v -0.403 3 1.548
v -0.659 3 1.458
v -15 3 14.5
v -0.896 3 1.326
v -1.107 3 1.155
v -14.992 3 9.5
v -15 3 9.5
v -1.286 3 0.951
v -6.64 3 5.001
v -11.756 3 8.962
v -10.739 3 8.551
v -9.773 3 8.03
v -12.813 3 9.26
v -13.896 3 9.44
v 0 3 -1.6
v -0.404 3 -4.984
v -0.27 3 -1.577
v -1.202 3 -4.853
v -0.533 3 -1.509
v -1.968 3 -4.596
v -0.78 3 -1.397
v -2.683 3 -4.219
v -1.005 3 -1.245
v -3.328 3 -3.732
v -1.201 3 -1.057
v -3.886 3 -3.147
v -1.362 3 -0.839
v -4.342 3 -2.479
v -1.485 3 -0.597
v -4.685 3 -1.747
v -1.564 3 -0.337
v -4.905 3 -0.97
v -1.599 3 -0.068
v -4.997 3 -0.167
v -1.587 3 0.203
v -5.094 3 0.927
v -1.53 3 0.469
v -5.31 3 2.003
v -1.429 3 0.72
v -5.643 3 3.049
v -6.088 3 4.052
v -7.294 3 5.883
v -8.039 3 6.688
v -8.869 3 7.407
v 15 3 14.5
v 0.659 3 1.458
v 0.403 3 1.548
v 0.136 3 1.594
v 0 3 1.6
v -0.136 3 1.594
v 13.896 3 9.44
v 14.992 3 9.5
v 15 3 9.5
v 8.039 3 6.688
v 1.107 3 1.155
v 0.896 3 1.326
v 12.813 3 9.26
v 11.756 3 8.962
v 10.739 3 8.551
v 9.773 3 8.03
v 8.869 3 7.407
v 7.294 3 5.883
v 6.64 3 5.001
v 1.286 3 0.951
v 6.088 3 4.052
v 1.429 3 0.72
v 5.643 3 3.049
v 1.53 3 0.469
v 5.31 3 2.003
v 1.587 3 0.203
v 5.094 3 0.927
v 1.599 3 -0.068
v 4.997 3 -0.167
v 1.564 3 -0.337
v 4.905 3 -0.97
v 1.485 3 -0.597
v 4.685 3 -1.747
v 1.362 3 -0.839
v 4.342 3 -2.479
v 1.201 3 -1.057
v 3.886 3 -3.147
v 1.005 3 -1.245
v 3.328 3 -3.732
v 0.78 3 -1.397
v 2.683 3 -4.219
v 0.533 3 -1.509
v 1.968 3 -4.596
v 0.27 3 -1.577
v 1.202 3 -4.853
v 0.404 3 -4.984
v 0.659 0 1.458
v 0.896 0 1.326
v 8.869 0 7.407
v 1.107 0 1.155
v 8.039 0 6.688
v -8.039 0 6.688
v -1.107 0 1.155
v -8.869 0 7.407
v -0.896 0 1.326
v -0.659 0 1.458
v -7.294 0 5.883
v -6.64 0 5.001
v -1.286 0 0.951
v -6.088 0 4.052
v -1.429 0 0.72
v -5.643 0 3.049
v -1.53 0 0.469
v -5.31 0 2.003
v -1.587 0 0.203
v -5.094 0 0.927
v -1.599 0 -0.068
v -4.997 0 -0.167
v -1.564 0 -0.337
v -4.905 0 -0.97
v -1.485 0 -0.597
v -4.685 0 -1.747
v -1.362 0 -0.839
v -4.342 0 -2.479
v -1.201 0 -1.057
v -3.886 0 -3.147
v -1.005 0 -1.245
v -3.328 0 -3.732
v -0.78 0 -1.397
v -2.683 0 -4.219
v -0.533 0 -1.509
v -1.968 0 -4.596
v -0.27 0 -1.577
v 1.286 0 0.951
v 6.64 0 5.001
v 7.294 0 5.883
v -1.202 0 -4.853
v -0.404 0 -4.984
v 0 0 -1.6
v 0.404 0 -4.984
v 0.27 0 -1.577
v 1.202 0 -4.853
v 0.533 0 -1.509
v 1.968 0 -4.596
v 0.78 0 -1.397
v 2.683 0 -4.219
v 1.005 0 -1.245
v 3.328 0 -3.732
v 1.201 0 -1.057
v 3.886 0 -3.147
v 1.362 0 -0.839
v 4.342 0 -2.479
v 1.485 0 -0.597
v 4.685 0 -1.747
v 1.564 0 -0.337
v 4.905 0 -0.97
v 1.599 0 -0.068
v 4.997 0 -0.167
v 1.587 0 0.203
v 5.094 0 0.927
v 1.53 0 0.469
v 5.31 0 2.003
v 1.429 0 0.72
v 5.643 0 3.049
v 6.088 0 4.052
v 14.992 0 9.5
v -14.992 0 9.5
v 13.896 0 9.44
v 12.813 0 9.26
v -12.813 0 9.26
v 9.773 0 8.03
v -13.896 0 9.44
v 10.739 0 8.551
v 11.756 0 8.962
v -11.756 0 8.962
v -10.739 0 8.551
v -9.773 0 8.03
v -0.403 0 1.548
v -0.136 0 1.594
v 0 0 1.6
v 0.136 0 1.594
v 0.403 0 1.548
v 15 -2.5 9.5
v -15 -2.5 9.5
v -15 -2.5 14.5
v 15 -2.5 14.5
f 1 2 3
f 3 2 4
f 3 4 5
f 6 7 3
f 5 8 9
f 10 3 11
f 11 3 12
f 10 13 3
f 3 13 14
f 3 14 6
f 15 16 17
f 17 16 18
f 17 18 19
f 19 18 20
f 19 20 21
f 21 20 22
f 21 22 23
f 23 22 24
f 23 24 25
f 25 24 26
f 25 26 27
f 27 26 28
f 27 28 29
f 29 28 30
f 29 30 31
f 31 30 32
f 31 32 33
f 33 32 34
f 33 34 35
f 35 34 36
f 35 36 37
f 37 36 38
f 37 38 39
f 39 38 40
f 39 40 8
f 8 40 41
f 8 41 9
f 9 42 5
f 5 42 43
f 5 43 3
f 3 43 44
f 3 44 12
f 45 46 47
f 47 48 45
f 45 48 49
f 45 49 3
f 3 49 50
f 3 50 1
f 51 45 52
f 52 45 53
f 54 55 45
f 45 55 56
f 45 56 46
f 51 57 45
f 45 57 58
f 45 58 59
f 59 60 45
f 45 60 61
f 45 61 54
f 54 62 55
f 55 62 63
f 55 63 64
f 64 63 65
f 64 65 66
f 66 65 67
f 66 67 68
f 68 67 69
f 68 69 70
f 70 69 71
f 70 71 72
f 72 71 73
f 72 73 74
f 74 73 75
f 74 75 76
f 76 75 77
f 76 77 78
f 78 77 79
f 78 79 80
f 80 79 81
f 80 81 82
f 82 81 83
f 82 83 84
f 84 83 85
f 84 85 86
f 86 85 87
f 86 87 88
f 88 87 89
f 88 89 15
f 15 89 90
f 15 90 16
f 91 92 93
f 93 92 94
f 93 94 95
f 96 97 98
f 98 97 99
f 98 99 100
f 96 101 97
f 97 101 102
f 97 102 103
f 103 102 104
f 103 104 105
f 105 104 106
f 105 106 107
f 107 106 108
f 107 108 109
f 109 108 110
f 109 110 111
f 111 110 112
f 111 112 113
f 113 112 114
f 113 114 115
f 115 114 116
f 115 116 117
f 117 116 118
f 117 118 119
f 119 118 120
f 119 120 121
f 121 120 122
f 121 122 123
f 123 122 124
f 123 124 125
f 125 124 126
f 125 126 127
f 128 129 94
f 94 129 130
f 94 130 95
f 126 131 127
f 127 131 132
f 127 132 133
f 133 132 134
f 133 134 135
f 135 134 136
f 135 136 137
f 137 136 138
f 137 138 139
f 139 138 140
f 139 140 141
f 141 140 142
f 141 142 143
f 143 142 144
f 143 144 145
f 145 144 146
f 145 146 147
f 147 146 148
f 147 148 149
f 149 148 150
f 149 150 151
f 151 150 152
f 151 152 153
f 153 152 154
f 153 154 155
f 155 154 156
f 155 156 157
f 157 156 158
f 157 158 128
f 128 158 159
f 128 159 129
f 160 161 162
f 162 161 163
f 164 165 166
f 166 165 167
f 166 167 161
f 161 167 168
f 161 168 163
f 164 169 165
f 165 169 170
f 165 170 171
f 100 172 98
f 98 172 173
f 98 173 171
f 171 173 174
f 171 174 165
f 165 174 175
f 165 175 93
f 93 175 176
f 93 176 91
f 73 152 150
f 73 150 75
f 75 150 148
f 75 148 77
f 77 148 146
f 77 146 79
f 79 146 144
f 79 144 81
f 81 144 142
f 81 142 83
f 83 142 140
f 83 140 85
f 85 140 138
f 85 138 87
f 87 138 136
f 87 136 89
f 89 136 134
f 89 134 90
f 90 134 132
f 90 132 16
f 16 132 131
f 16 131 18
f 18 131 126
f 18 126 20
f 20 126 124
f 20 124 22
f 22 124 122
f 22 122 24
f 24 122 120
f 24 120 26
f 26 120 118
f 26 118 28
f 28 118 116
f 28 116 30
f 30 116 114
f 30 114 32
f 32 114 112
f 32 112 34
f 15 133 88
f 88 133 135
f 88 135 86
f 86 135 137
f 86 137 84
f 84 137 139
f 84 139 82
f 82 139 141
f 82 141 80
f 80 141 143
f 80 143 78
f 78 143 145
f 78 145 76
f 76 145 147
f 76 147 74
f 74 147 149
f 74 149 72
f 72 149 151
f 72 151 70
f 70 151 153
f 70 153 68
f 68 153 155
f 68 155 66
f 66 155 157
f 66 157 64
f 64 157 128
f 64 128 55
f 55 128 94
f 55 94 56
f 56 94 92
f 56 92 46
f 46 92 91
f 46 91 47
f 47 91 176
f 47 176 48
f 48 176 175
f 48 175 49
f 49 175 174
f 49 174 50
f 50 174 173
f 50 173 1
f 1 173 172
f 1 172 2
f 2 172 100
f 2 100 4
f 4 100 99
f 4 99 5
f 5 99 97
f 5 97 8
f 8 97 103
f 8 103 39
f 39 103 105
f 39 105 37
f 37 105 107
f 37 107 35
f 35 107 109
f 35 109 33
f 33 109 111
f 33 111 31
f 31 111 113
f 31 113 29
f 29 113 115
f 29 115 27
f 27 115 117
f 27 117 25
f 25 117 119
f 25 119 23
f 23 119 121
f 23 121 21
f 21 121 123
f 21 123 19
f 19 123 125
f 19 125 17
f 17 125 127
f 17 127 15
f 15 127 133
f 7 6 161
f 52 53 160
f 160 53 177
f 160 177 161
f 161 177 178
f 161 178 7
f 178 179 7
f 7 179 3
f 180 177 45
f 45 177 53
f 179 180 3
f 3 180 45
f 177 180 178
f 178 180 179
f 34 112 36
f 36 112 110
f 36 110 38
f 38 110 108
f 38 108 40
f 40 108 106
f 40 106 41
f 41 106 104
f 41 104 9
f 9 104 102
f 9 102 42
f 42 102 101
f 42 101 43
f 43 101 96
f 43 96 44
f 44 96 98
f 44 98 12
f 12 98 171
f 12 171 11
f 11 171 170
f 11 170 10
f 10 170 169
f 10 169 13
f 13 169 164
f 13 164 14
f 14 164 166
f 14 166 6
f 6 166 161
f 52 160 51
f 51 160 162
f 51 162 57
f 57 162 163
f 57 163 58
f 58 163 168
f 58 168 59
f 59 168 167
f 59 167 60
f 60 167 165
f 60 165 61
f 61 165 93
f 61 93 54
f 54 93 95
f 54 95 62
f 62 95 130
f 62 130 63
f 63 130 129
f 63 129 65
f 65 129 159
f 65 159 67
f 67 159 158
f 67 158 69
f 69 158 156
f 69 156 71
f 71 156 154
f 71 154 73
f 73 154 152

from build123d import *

# Parameters (mm, degrees)
SKETCH_1_R      = 1.6
EXTRUDE_1_DEPTH = 3
SKETCH_2_W      = 30
SKETCH_2_H      = 5
EXTRUDE_2_DEPTH = 5.5
FILLET_1_R      = 10


with BuildPart() as part:
    # 草图1 → 凸台-拉伸1 (new body)
    with BuildSketch(Plane(origin=(0, 0, 0), x_dir=(1, 0, 0), z_dir=(0, 1, 0))):
        with BuildLine():
            Line((-5, 0), (-5, -9.5))
            Line((-5, -9.5), (5, -9.5))
            Line((5, -9.5), (5, 0))
            ThreePointArc((5, 0), (0, 5), (-5, 0))
        make_face()
        with Locations(Location((0, 0, 0), (0, 0, 270))):
            Circle(SKETCH_1_R, mode=Mode.SUBTRACT)
    extrude(amount=EXTRUDE_1_DEPTH)

    # 草图2 → 凸台-拉伸2 (add)
    with BuildSketch(Plane(origin=(0, 3, 0), x_dir=(1, 0, 0), z_dir=(0, 1, 0))):
        with Locations((0, -12)):
            Rectangle(SKETCH_2_W, SKETCH_2_H)
    extrude(amount=-EXTRUDE_2_DEPTH)

    # 圆角1
    # the kernel refuses this fillet: 10 mm, written as the material it adds along each edge
    with BuildSketch(Plane(origin=(-5, 0, 9.5), x_dir=(-1, 0, 0), z_dir=(0, 1, 0))) as fillet_1_piece_1:
        with BuildLine():
            CenterArc((9.991664351, -10), FILLET_1_R, 90, 88.089786828)
            Line((-0.00277855, -9.666666667), (-1.00222284, -9.633333333))
            ThreePointArc((-1.00222284, -9.633333333), (-1, -9.5), (-1, 0))
            Line((-1, 0), (0, 1))
            Line((0, 1), (9.991664351, 1))
            Line((9.991664351, 1), (9.991664351, 0))
        make_face()
    extrude(amount=3)
    with BuildSketch(Plane(origin=(5, 0, 9.5), x_dir=(1, 0, 0), z_dir=(0, 1, 0))) as fillet_1_piece_2:
        with BuildLine():
            CenterArc((9.991664351, 10), FILLET_1_R, 181.910213172, 88.089786828)
            Line((-0.00277855, 9.666666667), (-1.00222284, 9.633333333))
            ThreePointArc((-1.00222284, 9.633333333), (-1, 9.5), (-1, 0))
            Line((-1, 0), (0, -1))
            Line((0, -1), (9.991664351, -1))
            Line((9.991664351, -1), (9.991664351, 0))
        make_face()
    extrude(amount=3)


solid = part.part
